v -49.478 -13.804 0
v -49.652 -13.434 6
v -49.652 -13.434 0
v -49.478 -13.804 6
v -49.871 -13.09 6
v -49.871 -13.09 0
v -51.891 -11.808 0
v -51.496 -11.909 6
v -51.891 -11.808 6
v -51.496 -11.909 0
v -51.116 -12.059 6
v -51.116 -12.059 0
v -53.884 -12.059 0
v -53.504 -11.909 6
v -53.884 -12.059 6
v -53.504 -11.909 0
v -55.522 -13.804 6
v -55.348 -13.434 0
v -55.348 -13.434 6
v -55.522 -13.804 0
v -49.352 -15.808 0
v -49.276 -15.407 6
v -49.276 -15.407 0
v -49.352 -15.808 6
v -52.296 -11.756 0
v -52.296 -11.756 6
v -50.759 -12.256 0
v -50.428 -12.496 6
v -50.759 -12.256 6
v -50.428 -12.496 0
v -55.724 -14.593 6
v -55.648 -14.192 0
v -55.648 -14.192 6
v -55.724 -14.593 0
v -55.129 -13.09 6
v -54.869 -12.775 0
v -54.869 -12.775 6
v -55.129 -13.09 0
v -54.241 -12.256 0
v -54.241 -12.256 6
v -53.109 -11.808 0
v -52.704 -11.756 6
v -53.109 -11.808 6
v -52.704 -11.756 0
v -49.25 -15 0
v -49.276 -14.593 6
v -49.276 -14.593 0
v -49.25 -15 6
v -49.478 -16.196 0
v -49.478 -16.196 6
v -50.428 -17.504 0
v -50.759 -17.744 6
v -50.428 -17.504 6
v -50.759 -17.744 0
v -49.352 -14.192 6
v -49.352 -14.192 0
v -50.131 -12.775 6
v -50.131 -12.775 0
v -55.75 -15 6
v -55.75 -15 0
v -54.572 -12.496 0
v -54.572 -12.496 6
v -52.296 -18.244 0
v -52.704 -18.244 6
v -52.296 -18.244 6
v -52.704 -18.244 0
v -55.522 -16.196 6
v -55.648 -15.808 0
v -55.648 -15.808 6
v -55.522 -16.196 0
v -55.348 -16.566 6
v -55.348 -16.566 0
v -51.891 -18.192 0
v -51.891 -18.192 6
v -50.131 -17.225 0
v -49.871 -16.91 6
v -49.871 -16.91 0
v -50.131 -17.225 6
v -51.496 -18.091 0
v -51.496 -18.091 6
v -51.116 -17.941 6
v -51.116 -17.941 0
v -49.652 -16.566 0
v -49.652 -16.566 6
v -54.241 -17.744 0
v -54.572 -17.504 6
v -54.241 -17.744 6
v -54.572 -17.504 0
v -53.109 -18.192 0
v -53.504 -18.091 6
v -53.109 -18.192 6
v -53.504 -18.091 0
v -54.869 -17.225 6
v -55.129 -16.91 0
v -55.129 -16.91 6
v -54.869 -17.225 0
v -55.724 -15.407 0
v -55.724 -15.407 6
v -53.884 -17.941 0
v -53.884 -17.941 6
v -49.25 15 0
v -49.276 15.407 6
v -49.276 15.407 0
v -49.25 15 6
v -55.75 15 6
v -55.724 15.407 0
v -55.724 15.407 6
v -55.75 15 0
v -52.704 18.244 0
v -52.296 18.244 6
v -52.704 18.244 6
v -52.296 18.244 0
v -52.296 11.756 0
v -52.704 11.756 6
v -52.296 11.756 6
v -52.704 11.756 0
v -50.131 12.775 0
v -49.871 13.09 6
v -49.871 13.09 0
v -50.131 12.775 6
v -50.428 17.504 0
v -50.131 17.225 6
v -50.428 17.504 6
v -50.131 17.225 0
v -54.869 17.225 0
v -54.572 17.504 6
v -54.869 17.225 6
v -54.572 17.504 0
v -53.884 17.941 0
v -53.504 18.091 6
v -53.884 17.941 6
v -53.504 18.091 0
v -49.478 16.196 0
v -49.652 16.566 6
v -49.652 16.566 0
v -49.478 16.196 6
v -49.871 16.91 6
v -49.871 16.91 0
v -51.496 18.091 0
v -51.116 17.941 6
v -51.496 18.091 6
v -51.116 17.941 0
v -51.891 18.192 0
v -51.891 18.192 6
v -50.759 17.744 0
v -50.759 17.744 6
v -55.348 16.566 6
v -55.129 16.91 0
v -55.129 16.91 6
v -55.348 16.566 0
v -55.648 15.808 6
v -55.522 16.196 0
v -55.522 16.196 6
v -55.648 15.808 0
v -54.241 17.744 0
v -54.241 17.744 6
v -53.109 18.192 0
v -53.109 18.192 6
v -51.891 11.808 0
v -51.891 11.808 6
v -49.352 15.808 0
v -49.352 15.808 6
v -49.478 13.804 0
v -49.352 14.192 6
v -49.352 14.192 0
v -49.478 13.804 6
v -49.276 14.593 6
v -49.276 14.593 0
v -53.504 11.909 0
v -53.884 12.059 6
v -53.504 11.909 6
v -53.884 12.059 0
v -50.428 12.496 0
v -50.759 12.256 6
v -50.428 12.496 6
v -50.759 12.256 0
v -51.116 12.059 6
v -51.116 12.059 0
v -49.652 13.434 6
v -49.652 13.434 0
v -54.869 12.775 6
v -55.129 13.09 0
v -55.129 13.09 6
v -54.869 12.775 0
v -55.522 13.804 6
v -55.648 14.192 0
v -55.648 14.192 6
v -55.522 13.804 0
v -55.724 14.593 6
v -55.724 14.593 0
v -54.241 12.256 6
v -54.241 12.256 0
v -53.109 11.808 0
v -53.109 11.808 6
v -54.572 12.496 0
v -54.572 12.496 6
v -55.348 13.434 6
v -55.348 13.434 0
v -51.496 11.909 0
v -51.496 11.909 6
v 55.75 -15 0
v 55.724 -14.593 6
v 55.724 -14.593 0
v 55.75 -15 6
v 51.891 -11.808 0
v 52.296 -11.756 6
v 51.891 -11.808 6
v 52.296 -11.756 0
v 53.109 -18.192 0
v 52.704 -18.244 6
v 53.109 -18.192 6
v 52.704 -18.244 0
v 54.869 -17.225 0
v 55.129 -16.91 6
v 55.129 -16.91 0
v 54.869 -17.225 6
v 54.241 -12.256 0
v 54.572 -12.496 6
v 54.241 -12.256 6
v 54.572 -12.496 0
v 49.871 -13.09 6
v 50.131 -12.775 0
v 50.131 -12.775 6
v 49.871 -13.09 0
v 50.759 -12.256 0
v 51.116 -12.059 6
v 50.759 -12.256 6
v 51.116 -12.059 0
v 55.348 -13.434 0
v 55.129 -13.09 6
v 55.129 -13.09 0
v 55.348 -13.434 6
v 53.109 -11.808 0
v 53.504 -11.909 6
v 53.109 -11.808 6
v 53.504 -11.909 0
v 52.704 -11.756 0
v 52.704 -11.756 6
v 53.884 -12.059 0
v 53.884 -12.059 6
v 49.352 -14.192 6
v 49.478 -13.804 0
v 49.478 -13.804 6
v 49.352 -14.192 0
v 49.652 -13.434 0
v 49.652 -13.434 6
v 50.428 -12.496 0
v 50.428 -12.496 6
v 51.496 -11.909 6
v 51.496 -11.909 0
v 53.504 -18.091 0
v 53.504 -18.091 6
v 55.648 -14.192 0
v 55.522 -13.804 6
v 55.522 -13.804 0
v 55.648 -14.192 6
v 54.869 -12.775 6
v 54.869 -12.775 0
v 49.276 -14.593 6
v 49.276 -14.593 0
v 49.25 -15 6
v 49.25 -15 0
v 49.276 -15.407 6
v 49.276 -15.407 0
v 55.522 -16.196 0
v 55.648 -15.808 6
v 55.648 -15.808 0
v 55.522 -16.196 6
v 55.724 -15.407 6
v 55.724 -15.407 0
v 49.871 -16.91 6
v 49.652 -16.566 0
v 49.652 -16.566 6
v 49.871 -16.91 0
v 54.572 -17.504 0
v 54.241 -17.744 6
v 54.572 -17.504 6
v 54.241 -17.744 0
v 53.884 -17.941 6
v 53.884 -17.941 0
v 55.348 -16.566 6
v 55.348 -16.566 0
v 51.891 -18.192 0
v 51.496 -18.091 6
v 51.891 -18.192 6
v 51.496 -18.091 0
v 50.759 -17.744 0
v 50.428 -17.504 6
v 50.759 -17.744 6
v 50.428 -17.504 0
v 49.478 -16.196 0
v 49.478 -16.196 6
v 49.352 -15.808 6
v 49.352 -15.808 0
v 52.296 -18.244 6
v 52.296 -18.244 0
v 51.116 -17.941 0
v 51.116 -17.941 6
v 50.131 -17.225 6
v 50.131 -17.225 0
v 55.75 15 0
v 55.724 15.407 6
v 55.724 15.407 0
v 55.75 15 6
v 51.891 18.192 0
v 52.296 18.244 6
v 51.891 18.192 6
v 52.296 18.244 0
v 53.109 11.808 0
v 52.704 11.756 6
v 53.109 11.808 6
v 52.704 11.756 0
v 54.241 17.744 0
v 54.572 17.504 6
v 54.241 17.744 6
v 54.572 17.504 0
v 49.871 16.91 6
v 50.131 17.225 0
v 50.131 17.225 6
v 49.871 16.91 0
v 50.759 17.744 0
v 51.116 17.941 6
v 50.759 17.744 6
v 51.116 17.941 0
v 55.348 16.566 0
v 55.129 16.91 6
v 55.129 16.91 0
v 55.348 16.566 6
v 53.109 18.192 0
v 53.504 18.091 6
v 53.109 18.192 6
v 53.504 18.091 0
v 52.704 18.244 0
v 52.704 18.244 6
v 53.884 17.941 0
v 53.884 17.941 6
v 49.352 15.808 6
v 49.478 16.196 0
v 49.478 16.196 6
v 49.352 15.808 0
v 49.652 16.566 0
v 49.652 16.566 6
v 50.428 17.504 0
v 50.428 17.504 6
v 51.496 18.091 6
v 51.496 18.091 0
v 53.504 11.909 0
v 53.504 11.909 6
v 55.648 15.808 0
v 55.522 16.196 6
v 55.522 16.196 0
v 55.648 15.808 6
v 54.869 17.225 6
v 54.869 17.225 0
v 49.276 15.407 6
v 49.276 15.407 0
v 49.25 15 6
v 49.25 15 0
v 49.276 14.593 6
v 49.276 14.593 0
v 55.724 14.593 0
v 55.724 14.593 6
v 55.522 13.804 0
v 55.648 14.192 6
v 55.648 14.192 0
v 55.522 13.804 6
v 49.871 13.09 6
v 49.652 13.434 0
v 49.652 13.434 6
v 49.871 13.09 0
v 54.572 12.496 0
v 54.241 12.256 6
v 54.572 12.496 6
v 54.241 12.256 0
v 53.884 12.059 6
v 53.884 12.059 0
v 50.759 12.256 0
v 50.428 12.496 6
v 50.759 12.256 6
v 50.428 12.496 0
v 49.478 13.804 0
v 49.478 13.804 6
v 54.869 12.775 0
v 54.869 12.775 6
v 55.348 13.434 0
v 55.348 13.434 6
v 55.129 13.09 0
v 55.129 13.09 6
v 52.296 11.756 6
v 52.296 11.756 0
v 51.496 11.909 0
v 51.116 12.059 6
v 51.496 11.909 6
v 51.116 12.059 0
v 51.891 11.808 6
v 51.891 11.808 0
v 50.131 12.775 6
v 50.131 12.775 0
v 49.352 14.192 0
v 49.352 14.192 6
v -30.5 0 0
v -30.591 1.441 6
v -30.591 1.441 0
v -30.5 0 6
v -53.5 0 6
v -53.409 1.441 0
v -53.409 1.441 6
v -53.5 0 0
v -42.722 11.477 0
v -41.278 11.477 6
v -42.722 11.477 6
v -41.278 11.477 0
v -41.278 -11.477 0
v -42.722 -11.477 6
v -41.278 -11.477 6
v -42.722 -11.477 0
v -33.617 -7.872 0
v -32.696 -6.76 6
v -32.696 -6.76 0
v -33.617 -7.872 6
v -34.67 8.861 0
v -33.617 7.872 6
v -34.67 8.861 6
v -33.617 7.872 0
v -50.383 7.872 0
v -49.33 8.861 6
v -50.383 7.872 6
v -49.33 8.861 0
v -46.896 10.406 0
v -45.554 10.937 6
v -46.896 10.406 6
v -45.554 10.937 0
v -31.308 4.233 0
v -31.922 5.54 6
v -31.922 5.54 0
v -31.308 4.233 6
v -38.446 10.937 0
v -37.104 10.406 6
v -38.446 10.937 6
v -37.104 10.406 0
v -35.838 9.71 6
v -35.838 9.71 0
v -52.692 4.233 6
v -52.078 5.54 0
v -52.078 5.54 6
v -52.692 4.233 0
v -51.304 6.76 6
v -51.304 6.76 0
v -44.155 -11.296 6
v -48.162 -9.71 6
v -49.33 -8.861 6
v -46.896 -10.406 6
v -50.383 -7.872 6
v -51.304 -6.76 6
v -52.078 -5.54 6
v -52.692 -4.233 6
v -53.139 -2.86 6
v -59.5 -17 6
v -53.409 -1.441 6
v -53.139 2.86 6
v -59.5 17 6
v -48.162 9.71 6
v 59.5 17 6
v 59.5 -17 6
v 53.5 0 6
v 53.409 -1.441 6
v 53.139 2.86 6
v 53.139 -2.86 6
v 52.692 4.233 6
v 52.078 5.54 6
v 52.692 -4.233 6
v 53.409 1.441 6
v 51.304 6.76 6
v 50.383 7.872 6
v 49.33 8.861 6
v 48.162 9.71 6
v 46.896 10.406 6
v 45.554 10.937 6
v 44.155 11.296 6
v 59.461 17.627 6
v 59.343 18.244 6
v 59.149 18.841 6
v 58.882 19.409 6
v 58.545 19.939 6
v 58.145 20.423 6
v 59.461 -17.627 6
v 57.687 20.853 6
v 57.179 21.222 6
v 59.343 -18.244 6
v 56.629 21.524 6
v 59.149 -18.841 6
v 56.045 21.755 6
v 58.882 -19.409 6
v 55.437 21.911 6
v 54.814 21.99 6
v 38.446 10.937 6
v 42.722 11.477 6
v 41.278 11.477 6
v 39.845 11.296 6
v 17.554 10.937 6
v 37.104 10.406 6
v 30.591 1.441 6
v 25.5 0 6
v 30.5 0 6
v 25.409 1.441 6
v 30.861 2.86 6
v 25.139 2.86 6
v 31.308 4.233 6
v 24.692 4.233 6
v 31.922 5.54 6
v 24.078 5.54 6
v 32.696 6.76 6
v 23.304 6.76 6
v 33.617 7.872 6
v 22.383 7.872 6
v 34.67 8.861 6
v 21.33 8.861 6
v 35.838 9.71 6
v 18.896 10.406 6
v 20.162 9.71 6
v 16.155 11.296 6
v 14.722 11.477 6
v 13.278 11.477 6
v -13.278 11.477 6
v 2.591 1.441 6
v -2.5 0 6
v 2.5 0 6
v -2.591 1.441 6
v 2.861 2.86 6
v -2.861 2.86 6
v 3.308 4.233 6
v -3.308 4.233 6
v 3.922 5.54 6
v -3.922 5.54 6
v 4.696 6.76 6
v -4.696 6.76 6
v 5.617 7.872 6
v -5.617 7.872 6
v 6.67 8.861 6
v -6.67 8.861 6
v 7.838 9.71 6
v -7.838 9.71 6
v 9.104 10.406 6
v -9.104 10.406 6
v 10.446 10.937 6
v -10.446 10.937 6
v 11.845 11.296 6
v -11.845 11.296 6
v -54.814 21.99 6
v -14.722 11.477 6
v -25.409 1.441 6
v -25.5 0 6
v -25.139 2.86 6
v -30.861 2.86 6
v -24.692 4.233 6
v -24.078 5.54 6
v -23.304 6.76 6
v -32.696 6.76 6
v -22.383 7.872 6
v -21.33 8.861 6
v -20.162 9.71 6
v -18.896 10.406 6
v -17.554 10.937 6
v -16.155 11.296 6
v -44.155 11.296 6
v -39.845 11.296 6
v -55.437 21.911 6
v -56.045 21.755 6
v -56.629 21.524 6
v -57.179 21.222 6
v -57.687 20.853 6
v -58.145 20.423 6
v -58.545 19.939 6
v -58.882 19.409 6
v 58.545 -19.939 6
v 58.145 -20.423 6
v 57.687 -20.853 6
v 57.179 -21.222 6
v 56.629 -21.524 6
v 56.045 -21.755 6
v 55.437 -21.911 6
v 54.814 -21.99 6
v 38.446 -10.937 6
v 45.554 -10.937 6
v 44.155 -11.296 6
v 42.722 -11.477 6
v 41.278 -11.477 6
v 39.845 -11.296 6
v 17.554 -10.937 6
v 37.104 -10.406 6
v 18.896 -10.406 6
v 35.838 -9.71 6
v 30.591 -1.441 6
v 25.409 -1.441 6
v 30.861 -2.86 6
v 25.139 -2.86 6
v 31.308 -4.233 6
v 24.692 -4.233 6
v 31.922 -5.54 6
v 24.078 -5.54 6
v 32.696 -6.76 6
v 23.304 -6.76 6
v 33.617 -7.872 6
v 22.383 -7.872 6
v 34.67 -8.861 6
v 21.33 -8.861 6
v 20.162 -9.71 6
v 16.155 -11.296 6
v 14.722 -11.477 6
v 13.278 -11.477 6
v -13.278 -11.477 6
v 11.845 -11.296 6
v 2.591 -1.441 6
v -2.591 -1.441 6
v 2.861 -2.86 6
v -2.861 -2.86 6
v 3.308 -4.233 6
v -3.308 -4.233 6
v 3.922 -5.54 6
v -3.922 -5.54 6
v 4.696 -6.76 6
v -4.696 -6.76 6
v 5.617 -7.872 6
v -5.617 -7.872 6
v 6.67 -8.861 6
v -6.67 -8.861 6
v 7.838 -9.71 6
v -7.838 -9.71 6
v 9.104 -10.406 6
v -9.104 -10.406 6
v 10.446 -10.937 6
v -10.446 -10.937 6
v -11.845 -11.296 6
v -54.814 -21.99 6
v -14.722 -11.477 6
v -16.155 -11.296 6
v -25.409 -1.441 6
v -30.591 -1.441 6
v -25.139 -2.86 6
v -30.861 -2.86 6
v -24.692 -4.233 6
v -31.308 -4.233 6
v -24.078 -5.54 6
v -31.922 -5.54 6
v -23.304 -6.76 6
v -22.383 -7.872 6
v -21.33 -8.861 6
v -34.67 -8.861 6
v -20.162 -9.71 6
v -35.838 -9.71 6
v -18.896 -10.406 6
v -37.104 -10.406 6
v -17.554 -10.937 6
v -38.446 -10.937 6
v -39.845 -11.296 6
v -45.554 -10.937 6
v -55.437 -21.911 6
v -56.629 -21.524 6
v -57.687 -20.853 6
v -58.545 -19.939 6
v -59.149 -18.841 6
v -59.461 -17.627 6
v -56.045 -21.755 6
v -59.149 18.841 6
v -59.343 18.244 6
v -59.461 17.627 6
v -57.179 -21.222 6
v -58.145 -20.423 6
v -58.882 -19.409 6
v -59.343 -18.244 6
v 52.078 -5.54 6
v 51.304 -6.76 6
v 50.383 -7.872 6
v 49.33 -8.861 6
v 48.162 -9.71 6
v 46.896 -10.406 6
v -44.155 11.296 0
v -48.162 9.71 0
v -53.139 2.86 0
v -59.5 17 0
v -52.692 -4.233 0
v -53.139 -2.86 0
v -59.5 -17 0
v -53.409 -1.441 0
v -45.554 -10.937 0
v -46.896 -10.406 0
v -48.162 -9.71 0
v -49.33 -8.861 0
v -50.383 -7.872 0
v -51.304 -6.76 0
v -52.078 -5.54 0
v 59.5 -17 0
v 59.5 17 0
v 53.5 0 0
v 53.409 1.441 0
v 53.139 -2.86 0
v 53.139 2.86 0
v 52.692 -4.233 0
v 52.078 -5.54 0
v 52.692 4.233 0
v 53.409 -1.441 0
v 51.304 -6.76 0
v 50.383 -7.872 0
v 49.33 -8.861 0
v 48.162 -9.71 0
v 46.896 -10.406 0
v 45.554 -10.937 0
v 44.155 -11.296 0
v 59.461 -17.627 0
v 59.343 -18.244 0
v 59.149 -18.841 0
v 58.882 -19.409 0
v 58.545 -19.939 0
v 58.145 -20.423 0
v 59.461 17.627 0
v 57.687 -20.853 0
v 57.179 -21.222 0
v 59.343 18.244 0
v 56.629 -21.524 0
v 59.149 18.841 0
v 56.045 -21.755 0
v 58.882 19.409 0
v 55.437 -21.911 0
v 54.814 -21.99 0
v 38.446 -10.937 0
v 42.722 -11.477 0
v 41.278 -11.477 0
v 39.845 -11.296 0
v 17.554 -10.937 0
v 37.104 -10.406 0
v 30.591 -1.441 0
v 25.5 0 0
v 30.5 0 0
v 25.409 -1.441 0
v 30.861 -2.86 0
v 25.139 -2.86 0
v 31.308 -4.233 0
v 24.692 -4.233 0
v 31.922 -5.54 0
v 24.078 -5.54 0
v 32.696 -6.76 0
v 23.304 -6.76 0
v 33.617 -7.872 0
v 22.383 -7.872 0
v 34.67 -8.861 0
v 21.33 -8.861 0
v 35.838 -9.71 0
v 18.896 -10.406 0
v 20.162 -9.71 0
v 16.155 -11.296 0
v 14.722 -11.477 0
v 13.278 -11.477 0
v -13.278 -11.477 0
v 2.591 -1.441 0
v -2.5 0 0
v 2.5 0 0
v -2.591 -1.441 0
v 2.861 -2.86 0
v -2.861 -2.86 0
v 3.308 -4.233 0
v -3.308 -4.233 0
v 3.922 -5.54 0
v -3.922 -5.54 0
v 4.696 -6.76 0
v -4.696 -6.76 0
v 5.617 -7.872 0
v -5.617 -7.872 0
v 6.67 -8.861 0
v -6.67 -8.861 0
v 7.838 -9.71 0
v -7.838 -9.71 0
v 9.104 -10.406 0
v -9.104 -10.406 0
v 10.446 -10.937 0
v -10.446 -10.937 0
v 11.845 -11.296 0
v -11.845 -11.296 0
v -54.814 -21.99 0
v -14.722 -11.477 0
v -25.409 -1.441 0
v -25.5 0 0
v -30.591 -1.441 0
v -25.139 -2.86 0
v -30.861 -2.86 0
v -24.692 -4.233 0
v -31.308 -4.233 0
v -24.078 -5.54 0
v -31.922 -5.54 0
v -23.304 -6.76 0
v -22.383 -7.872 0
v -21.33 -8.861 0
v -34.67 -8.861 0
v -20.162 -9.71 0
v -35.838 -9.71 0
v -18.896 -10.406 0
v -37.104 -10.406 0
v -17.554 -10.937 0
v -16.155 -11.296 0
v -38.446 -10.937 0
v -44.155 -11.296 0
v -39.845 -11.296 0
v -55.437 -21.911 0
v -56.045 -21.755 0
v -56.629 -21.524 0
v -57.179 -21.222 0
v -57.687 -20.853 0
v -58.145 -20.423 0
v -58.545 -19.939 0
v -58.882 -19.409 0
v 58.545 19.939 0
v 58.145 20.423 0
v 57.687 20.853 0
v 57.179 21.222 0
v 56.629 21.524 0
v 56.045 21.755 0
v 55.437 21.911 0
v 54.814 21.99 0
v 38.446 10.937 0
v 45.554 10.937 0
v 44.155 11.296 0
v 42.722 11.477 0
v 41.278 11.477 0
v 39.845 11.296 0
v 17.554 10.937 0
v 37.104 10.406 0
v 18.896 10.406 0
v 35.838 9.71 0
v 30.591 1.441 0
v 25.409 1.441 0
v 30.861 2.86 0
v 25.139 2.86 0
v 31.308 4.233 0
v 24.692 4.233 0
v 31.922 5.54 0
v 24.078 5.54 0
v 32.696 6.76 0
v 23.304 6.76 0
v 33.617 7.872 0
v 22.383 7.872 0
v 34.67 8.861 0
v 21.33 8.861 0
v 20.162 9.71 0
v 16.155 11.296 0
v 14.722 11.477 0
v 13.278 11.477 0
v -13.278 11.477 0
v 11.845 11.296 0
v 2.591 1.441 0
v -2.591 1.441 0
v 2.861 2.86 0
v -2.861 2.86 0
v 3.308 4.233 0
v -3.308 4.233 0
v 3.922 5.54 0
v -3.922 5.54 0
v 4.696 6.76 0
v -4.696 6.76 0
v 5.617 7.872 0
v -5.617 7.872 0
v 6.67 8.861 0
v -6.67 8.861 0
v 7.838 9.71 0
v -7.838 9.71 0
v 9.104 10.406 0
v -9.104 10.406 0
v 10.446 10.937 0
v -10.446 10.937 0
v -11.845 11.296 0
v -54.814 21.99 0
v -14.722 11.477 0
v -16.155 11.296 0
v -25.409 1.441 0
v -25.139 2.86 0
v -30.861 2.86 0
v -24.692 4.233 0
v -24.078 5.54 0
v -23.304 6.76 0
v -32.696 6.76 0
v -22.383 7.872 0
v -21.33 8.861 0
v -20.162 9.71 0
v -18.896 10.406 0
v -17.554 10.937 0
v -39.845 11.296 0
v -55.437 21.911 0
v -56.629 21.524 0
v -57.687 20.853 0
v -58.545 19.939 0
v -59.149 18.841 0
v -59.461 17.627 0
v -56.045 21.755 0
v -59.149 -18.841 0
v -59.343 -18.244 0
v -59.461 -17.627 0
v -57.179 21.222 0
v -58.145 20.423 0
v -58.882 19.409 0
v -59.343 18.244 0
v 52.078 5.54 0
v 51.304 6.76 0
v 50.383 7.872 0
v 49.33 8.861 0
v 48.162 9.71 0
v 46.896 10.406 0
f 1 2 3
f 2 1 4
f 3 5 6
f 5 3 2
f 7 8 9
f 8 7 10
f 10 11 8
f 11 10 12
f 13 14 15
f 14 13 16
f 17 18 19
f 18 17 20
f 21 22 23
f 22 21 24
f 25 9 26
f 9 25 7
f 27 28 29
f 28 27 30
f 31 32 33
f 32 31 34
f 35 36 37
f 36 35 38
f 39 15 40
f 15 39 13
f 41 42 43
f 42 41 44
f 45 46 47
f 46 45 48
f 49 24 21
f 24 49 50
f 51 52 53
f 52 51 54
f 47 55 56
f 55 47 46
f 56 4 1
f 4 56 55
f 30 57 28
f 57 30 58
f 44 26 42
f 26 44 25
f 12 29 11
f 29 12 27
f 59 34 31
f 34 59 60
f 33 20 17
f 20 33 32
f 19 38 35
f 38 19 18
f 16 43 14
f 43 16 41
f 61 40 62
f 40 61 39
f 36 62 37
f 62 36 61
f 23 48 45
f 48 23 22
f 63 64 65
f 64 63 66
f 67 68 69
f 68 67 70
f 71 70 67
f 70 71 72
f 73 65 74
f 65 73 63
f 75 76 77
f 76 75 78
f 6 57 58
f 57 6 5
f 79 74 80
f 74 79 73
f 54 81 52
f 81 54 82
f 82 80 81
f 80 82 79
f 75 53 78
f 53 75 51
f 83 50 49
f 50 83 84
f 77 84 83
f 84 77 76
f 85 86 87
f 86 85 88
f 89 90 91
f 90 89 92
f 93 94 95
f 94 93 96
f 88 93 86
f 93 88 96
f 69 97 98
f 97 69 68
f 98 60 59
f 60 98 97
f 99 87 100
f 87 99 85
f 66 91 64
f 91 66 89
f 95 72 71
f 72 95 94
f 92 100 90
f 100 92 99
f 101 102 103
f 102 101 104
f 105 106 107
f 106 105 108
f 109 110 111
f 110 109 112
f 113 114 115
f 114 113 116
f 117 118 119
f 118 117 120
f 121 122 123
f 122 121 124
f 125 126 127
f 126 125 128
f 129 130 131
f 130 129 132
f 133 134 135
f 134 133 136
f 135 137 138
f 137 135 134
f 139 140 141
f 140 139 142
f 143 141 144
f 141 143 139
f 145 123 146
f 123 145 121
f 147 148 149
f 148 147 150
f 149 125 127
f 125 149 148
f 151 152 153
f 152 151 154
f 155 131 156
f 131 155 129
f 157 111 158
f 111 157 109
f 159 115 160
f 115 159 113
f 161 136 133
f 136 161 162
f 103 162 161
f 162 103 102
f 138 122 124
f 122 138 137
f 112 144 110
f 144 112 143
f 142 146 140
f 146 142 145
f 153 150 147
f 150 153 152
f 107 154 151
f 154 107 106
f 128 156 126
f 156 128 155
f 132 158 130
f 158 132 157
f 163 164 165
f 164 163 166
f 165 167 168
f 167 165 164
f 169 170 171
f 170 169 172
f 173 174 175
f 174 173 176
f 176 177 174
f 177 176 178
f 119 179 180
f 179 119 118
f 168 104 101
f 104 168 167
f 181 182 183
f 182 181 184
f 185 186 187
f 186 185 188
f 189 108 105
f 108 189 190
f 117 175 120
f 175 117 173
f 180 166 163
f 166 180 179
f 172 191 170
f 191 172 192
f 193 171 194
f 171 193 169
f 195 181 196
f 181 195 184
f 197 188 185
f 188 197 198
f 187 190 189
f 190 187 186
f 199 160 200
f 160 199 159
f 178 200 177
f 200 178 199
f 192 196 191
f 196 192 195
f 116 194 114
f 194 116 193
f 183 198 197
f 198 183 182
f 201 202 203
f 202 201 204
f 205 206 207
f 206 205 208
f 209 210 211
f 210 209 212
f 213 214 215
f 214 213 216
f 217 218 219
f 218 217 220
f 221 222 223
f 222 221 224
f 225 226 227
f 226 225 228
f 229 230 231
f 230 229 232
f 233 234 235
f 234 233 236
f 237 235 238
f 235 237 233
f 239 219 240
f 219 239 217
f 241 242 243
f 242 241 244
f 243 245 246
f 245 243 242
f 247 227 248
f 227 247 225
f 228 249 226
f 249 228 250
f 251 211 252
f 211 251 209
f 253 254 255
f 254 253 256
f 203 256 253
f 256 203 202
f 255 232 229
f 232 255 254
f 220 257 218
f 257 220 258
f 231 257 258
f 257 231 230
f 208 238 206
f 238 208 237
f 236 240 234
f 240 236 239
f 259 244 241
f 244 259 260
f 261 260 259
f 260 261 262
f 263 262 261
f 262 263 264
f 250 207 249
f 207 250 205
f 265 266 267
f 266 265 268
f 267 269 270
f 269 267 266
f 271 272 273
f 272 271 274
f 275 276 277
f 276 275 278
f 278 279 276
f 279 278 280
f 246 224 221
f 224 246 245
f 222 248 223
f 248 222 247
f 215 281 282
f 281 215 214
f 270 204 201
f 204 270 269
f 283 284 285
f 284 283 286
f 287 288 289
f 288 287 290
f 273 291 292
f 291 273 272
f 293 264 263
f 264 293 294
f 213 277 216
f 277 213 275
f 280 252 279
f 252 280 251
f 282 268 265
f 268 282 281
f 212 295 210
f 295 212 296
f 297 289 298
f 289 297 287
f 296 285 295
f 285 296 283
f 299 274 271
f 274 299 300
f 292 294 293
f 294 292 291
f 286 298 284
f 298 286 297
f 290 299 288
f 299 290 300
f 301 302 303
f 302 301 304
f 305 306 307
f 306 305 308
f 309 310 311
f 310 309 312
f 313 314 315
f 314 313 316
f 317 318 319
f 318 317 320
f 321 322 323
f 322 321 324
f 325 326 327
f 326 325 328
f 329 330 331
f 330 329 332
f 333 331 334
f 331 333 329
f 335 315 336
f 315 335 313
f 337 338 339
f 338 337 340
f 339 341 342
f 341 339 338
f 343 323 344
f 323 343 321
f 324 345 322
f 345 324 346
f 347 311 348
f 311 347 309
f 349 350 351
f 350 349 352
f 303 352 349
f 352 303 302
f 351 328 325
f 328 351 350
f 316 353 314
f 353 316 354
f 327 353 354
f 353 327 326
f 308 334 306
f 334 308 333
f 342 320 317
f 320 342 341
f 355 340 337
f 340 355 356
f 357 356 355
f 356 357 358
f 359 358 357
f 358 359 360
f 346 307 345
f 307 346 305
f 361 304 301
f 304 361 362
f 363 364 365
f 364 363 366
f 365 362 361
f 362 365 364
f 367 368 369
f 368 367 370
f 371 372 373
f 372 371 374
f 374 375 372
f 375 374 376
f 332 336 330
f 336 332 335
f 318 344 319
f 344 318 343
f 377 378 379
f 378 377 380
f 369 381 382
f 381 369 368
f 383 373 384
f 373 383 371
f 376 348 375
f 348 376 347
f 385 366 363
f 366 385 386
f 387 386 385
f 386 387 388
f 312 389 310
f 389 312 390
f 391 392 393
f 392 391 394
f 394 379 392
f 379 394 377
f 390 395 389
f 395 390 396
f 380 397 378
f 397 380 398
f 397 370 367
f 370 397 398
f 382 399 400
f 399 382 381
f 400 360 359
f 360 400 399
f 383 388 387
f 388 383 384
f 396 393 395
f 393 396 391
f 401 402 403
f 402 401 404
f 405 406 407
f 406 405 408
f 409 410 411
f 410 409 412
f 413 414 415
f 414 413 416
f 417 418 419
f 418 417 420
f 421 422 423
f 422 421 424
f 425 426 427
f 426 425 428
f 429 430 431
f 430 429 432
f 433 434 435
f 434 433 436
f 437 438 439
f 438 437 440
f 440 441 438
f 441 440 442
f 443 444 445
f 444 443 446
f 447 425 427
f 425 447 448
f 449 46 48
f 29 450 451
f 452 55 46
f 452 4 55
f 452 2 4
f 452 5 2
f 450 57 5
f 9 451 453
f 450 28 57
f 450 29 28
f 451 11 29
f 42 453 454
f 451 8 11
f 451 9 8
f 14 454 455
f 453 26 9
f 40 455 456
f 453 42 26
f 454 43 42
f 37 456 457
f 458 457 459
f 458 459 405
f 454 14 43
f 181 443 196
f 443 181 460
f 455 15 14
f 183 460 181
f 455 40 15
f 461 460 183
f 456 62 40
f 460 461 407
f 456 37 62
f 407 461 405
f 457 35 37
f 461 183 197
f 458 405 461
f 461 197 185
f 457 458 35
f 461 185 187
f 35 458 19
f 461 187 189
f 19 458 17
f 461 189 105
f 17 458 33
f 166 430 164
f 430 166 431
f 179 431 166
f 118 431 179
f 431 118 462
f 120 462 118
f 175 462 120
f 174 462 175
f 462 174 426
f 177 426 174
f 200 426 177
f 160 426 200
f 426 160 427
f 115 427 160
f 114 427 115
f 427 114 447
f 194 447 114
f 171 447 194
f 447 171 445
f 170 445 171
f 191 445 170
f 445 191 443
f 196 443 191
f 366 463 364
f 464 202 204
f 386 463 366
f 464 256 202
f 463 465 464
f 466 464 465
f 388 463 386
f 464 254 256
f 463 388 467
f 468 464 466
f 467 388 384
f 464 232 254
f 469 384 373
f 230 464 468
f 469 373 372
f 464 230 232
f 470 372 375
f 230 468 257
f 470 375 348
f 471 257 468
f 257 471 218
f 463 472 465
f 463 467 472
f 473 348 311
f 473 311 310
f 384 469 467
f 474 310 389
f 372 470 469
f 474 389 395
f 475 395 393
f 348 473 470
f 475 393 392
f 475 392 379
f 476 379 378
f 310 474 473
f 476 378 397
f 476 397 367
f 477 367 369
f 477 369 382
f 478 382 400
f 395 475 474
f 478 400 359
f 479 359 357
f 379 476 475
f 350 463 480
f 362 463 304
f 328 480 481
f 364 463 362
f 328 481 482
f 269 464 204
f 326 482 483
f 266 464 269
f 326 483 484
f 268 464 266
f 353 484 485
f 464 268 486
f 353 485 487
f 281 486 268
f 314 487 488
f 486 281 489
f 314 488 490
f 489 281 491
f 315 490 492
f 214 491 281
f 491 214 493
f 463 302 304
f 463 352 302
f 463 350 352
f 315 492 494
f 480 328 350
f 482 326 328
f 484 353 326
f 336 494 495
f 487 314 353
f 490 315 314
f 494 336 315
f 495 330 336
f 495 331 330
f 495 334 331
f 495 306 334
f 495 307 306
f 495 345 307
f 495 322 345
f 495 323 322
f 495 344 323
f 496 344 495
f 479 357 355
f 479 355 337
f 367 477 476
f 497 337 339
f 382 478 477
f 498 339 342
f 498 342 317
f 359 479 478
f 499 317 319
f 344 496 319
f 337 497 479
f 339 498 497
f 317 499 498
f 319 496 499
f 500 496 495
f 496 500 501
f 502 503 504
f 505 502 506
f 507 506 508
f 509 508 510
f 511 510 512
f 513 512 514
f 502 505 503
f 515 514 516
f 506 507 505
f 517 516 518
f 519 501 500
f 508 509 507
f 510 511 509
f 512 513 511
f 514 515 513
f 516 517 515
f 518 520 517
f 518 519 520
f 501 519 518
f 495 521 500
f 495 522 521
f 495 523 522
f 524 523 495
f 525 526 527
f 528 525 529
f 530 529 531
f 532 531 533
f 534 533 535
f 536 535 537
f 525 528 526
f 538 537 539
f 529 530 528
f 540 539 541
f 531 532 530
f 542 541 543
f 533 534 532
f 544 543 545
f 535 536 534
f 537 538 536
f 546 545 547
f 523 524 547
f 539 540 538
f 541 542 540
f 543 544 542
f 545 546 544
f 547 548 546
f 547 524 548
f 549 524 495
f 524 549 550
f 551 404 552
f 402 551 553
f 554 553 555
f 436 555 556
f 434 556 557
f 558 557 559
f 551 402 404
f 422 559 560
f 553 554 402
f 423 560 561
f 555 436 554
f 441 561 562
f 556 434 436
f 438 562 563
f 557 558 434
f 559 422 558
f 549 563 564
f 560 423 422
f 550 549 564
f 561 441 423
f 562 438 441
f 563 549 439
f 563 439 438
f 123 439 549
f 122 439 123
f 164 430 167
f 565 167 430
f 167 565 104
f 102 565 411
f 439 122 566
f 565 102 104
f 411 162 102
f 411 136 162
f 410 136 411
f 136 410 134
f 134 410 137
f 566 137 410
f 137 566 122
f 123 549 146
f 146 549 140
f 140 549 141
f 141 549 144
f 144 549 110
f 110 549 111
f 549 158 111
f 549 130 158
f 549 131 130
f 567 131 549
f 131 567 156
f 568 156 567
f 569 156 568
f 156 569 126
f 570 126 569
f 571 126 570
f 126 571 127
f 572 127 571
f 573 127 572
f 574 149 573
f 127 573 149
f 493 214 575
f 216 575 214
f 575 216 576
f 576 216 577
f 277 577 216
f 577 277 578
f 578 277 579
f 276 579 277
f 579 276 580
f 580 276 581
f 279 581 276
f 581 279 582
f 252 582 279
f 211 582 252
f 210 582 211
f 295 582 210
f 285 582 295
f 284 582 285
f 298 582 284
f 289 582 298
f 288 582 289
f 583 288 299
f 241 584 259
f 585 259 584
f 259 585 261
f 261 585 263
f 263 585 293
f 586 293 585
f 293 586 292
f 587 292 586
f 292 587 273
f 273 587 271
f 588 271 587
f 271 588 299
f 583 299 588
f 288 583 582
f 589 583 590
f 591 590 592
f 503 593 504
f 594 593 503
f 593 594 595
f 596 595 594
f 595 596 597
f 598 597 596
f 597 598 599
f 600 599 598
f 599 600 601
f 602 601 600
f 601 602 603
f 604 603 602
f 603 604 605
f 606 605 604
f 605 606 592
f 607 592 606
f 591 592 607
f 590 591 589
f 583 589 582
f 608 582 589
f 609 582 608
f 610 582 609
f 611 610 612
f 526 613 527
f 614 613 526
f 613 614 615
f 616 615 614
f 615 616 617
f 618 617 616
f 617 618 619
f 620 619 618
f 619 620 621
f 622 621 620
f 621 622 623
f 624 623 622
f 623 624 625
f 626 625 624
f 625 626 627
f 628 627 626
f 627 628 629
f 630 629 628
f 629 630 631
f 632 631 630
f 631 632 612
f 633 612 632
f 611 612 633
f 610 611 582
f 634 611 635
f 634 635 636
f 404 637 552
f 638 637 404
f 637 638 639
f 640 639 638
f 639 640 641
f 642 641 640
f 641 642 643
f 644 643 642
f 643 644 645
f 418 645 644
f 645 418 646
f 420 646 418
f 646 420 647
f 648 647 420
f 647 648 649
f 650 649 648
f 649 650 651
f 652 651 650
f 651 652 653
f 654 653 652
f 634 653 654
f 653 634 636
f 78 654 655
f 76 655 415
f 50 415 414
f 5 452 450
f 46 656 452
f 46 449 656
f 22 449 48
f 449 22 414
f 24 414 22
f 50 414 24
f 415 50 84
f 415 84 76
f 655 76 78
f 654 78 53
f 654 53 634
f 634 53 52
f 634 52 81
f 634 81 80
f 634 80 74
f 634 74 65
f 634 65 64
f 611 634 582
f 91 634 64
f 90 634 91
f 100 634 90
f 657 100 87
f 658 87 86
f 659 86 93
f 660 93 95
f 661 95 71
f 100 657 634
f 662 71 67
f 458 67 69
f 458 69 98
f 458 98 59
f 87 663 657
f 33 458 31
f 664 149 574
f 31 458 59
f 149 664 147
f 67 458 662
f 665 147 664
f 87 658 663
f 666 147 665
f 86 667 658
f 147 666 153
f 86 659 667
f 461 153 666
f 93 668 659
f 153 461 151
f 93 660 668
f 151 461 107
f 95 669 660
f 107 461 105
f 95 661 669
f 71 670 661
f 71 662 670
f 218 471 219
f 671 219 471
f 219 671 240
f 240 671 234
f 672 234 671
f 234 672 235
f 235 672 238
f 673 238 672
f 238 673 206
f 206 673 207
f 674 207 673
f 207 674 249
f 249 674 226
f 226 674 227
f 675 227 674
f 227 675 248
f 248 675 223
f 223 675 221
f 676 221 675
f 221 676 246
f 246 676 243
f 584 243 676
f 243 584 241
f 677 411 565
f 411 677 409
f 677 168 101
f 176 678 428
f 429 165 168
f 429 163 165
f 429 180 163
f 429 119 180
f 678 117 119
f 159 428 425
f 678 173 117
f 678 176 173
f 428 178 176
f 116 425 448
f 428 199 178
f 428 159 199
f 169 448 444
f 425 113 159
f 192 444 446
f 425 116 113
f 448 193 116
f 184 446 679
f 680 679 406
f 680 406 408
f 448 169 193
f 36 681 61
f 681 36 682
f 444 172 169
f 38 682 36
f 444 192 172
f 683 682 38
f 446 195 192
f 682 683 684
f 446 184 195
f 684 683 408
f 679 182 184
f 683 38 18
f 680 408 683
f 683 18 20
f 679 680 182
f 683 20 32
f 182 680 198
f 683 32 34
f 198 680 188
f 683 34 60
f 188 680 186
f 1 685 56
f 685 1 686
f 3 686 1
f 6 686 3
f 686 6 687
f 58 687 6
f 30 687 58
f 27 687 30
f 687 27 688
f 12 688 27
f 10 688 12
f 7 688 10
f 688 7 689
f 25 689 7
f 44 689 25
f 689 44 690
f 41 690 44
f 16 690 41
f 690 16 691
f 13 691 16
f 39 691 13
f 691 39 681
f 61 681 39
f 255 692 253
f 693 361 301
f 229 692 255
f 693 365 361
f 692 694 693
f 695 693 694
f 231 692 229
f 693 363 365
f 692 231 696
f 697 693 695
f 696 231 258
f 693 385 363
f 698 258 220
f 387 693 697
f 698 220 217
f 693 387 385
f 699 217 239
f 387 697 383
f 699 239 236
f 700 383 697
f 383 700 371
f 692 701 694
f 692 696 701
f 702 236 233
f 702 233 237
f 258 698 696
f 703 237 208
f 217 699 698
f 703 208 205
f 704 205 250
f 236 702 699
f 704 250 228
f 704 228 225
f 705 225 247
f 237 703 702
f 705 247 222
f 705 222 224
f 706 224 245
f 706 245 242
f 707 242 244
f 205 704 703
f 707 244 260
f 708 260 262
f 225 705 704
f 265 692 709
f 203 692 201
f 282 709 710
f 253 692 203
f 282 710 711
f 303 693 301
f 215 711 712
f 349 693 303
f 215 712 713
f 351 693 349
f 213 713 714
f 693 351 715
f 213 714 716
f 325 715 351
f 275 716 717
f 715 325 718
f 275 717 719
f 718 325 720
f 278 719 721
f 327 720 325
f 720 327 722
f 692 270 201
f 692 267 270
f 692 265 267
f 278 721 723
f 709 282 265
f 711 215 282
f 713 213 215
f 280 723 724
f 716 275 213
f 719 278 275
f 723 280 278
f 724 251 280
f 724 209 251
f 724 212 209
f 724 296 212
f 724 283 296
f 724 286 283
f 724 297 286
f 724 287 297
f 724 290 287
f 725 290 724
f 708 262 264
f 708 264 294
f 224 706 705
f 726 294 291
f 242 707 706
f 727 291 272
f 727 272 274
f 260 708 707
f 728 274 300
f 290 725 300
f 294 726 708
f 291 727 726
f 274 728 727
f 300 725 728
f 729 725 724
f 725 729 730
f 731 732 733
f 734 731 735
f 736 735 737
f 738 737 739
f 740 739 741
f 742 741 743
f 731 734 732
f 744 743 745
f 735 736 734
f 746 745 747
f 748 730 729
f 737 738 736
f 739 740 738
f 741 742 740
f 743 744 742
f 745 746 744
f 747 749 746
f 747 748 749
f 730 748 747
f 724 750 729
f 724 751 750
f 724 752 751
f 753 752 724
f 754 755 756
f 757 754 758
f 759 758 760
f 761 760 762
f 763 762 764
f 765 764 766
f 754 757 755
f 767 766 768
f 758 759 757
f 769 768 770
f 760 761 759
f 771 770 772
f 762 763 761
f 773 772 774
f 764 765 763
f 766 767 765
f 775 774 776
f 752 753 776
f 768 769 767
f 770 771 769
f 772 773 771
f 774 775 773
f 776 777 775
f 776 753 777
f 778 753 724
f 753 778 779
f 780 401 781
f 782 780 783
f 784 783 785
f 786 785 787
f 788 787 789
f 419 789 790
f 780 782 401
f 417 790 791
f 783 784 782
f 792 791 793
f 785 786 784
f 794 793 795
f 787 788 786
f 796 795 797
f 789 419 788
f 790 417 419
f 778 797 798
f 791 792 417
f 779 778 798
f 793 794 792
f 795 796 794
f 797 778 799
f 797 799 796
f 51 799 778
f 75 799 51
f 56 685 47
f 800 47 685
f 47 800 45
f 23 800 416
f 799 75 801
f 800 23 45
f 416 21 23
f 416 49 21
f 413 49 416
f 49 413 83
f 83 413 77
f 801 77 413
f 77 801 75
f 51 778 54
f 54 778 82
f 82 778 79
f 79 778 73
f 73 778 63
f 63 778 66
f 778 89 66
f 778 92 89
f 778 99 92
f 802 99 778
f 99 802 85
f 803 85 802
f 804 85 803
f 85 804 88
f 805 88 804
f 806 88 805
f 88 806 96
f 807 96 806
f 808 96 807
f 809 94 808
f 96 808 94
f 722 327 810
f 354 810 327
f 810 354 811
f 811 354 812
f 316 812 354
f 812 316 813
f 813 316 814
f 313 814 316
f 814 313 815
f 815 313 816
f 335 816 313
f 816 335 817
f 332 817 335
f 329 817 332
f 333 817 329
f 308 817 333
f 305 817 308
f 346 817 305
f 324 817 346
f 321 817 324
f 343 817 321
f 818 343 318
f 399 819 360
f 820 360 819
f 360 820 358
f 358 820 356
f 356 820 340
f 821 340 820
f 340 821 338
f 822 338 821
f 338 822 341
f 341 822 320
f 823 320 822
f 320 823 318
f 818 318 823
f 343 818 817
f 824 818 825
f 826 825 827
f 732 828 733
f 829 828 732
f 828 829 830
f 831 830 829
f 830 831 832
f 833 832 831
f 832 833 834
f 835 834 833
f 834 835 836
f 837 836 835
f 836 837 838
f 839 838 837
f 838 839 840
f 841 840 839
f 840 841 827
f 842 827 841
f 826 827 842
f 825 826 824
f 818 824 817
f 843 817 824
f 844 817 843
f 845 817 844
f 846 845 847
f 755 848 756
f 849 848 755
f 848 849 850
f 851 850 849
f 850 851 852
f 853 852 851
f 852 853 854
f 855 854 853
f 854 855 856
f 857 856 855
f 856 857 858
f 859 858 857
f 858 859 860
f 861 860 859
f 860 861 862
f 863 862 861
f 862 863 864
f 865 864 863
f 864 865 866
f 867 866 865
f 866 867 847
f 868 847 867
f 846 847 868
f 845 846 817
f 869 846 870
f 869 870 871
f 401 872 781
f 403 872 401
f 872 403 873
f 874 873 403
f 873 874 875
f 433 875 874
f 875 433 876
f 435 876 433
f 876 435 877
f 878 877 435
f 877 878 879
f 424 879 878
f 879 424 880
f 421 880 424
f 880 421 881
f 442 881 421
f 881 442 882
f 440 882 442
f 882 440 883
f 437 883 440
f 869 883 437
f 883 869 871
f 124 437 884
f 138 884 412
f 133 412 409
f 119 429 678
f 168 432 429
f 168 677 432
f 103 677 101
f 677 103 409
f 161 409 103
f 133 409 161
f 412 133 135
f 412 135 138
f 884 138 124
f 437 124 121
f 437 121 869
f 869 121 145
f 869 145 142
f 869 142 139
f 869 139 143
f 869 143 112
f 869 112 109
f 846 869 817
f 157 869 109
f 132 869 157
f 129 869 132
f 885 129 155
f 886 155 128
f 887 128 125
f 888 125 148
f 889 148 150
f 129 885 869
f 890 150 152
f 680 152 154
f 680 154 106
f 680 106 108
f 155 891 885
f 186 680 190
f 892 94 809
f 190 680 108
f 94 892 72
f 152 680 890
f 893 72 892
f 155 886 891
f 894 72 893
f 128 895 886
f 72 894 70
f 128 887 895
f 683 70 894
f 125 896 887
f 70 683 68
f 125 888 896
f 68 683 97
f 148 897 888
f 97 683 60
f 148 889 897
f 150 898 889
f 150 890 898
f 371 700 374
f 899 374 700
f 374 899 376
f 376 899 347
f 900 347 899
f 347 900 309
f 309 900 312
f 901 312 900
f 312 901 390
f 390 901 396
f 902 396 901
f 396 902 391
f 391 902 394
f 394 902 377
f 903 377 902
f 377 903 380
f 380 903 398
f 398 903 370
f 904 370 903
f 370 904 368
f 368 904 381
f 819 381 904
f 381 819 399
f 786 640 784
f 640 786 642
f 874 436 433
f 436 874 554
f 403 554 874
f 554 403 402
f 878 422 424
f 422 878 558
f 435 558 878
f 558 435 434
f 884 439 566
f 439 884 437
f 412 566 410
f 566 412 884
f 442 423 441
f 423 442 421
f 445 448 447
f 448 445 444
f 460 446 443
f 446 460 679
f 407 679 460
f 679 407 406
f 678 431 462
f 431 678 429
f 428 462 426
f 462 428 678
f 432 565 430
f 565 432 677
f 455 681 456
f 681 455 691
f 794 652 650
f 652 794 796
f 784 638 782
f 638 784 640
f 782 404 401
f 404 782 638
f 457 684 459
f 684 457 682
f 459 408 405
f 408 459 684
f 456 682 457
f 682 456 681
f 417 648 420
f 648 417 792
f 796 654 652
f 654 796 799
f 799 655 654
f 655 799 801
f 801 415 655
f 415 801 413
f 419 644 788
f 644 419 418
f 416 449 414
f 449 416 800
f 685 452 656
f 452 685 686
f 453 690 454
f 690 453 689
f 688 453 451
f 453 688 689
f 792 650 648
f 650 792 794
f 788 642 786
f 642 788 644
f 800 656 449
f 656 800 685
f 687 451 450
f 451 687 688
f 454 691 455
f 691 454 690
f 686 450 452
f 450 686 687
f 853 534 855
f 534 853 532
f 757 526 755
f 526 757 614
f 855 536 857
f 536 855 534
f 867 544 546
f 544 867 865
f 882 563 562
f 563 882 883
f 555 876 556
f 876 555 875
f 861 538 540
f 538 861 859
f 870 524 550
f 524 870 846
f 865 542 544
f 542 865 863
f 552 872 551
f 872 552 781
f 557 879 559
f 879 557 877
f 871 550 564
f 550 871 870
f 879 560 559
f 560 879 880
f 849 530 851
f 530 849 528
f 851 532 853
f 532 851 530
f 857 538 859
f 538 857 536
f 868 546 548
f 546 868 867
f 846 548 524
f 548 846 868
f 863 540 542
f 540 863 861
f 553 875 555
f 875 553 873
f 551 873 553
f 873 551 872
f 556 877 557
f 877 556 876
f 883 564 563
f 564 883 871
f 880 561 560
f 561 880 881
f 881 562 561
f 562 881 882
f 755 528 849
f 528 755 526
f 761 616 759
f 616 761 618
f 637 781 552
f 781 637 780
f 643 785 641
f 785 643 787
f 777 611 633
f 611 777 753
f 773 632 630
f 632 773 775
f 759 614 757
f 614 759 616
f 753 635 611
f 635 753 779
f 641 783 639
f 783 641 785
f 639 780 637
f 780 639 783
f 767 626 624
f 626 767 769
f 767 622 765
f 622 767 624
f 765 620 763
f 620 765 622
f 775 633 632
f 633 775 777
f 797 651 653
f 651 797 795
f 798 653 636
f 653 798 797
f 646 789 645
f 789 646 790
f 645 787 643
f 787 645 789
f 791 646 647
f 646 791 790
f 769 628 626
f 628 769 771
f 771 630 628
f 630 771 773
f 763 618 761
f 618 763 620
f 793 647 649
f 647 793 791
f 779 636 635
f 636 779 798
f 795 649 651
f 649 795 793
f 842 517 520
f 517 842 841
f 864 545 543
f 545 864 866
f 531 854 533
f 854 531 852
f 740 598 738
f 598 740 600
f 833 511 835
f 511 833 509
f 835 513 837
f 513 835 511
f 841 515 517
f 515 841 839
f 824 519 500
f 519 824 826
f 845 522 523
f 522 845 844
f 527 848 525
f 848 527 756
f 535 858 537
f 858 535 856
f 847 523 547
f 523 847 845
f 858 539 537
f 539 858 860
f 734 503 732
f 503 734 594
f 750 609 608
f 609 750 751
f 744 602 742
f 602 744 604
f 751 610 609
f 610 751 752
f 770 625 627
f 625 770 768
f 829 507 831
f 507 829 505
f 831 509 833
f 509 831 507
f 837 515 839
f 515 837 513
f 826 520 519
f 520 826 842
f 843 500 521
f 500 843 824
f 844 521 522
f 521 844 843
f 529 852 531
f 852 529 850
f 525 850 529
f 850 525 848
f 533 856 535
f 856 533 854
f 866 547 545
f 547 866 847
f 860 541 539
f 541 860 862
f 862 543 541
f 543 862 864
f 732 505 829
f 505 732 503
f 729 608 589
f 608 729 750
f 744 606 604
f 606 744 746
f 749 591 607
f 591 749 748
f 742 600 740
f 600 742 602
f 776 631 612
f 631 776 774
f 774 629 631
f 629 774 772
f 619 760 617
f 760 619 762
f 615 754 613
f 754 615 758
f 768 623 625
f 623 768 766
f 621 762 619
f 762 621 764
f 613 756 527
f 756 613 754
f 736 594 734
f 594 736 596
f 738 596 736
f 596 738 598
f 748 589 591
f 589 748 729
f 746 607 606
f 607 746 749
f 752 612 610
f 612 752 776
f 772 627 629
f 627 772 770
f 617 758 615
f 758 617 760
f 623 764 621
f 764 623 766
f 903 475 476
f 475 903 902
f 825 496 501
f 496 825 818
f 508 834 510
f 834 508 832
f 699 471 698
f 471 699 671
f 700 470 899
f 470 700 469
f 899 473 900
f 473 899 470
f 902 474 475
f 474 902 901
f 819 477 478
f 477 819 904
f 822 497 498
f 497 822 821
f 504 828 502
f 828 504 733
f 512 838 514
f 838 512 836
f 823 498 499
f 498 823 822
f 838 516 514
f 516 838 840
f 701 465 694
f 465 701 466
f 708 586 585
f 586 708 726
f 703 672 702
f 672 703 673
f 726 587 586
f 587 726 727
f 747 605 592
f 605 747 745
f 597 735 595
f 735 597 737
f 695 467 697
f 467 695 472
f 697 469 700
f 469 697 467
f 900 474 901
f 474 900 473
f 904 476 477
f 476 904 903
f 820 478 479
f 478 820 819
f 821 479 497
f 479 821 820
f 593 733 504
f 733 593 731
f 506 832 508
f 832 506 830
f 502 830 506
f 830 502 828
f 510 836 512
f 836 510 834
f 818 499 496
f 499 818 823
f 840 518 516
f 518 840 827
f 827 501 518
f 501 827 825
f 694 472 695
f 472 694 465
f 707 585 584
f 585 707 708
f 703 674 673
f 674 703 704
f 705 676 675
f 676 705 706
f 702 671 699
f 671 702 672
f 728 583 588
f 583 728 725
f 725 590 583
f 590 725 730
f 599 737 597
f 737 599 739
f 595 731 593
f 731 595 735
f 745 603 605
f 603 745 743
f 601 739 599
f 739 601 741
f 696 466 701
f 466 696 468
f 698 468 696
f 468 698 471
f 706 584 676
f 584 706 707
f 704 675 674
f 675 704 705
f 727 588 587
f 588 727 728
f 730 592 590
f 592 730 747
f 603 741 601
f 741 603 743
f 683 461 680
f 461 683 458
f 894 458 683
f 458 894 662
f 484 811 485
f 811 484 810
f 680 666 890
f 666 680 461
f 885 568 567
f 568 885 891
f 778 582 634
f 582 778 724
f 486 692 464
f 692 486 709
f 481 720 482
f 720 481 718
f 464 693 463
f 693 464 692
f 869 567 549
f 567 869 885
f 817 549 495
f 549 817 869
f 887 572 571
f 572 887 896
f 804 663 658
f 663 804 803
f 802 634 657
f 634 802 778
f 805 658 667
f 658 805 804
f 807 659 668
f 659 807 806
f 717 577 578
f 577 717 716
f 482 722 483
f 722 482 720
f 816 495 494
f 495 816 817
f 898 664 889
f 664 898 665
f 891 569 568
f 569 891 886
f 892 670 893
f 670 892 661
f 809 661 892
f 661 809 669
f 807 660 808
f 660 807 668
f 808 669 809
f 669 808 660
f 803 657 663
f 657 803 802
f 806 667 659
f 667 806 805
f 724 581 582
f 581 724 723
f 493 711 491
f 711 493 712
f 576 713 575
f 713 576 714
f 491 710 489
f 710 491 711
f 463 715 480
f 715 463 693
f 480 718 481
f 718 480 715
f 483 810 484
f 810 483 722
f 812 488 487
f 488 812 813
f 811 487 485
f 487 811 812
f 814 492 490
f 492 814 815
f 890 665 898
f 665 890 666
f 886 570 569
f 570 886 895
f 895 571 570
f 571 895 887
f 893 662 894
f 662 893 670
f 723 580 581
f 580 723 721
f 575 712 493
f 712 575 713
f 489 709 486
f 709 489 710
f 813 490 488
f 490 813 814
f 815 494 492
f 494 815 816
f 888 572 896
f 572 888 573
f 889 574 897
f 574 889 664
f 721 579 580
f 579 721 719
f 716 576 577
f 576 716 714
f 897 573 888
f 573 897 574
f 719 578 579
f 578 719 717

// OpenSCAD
$fn = 50;


difference() {
	union() {
		hull() {
			translate(v = [-54.5000000000, 17.0000000000, 0]) {
				cylinder(h = 6, r = 5);
			}
			translate(v = [54.5000000000, 17.0000000000, 0]) {
				cylinder(h = 6, r = 5);
			}
			translate(v = [-54.5000000000, -17.0000000000, 0]) {
				cylinder(h = 6, r = 5);
			}
			translate(v = [54.5000000000, -17.0000000000, 0]) {
				cylinder(h = 6, r = 5);
			}
		}
	}
	union() {
		#translate(v = [-52.5000000000, -15.0000000000, -100.0000000000]) {
			cylinder(h = 200, r = 3.2500000000);
		}
		#translate(v = [-52.5000000000, 15.0000000000, -100.0000000000]) {
			cylinder(h = 200, r = 3.2500000000);
		}
		#translate(v = [52.5000000000, -15.0000000000, -100.0000000000]) {
			cylinder(h = 200, r = 3.2500000000);
		}
		#translate(v = [52.5000000000, 15.0000000000, -100.0000000000]) {
			cylinder(h = 200, r = 3.2500000000);
		}
		#translate(v = [-42.0000000000, 0, 0]) {
			cylinder(h = 6, r = 11.5000000000);
		}
		#translate(v = [-14.0000000000, 0, 0]) {
			cylinder(h = 6, r = 11.5000000000);
		}
		#translate(v = [14.0000000000, 0, 0]) {
			cylinder(h = 6, r = 11.5000000000);
		}
		#translate(v = [42.0000000000, 0, 0]) {
			cylinder(h = 6, r = 11.5000000000);
		}
	}
}
